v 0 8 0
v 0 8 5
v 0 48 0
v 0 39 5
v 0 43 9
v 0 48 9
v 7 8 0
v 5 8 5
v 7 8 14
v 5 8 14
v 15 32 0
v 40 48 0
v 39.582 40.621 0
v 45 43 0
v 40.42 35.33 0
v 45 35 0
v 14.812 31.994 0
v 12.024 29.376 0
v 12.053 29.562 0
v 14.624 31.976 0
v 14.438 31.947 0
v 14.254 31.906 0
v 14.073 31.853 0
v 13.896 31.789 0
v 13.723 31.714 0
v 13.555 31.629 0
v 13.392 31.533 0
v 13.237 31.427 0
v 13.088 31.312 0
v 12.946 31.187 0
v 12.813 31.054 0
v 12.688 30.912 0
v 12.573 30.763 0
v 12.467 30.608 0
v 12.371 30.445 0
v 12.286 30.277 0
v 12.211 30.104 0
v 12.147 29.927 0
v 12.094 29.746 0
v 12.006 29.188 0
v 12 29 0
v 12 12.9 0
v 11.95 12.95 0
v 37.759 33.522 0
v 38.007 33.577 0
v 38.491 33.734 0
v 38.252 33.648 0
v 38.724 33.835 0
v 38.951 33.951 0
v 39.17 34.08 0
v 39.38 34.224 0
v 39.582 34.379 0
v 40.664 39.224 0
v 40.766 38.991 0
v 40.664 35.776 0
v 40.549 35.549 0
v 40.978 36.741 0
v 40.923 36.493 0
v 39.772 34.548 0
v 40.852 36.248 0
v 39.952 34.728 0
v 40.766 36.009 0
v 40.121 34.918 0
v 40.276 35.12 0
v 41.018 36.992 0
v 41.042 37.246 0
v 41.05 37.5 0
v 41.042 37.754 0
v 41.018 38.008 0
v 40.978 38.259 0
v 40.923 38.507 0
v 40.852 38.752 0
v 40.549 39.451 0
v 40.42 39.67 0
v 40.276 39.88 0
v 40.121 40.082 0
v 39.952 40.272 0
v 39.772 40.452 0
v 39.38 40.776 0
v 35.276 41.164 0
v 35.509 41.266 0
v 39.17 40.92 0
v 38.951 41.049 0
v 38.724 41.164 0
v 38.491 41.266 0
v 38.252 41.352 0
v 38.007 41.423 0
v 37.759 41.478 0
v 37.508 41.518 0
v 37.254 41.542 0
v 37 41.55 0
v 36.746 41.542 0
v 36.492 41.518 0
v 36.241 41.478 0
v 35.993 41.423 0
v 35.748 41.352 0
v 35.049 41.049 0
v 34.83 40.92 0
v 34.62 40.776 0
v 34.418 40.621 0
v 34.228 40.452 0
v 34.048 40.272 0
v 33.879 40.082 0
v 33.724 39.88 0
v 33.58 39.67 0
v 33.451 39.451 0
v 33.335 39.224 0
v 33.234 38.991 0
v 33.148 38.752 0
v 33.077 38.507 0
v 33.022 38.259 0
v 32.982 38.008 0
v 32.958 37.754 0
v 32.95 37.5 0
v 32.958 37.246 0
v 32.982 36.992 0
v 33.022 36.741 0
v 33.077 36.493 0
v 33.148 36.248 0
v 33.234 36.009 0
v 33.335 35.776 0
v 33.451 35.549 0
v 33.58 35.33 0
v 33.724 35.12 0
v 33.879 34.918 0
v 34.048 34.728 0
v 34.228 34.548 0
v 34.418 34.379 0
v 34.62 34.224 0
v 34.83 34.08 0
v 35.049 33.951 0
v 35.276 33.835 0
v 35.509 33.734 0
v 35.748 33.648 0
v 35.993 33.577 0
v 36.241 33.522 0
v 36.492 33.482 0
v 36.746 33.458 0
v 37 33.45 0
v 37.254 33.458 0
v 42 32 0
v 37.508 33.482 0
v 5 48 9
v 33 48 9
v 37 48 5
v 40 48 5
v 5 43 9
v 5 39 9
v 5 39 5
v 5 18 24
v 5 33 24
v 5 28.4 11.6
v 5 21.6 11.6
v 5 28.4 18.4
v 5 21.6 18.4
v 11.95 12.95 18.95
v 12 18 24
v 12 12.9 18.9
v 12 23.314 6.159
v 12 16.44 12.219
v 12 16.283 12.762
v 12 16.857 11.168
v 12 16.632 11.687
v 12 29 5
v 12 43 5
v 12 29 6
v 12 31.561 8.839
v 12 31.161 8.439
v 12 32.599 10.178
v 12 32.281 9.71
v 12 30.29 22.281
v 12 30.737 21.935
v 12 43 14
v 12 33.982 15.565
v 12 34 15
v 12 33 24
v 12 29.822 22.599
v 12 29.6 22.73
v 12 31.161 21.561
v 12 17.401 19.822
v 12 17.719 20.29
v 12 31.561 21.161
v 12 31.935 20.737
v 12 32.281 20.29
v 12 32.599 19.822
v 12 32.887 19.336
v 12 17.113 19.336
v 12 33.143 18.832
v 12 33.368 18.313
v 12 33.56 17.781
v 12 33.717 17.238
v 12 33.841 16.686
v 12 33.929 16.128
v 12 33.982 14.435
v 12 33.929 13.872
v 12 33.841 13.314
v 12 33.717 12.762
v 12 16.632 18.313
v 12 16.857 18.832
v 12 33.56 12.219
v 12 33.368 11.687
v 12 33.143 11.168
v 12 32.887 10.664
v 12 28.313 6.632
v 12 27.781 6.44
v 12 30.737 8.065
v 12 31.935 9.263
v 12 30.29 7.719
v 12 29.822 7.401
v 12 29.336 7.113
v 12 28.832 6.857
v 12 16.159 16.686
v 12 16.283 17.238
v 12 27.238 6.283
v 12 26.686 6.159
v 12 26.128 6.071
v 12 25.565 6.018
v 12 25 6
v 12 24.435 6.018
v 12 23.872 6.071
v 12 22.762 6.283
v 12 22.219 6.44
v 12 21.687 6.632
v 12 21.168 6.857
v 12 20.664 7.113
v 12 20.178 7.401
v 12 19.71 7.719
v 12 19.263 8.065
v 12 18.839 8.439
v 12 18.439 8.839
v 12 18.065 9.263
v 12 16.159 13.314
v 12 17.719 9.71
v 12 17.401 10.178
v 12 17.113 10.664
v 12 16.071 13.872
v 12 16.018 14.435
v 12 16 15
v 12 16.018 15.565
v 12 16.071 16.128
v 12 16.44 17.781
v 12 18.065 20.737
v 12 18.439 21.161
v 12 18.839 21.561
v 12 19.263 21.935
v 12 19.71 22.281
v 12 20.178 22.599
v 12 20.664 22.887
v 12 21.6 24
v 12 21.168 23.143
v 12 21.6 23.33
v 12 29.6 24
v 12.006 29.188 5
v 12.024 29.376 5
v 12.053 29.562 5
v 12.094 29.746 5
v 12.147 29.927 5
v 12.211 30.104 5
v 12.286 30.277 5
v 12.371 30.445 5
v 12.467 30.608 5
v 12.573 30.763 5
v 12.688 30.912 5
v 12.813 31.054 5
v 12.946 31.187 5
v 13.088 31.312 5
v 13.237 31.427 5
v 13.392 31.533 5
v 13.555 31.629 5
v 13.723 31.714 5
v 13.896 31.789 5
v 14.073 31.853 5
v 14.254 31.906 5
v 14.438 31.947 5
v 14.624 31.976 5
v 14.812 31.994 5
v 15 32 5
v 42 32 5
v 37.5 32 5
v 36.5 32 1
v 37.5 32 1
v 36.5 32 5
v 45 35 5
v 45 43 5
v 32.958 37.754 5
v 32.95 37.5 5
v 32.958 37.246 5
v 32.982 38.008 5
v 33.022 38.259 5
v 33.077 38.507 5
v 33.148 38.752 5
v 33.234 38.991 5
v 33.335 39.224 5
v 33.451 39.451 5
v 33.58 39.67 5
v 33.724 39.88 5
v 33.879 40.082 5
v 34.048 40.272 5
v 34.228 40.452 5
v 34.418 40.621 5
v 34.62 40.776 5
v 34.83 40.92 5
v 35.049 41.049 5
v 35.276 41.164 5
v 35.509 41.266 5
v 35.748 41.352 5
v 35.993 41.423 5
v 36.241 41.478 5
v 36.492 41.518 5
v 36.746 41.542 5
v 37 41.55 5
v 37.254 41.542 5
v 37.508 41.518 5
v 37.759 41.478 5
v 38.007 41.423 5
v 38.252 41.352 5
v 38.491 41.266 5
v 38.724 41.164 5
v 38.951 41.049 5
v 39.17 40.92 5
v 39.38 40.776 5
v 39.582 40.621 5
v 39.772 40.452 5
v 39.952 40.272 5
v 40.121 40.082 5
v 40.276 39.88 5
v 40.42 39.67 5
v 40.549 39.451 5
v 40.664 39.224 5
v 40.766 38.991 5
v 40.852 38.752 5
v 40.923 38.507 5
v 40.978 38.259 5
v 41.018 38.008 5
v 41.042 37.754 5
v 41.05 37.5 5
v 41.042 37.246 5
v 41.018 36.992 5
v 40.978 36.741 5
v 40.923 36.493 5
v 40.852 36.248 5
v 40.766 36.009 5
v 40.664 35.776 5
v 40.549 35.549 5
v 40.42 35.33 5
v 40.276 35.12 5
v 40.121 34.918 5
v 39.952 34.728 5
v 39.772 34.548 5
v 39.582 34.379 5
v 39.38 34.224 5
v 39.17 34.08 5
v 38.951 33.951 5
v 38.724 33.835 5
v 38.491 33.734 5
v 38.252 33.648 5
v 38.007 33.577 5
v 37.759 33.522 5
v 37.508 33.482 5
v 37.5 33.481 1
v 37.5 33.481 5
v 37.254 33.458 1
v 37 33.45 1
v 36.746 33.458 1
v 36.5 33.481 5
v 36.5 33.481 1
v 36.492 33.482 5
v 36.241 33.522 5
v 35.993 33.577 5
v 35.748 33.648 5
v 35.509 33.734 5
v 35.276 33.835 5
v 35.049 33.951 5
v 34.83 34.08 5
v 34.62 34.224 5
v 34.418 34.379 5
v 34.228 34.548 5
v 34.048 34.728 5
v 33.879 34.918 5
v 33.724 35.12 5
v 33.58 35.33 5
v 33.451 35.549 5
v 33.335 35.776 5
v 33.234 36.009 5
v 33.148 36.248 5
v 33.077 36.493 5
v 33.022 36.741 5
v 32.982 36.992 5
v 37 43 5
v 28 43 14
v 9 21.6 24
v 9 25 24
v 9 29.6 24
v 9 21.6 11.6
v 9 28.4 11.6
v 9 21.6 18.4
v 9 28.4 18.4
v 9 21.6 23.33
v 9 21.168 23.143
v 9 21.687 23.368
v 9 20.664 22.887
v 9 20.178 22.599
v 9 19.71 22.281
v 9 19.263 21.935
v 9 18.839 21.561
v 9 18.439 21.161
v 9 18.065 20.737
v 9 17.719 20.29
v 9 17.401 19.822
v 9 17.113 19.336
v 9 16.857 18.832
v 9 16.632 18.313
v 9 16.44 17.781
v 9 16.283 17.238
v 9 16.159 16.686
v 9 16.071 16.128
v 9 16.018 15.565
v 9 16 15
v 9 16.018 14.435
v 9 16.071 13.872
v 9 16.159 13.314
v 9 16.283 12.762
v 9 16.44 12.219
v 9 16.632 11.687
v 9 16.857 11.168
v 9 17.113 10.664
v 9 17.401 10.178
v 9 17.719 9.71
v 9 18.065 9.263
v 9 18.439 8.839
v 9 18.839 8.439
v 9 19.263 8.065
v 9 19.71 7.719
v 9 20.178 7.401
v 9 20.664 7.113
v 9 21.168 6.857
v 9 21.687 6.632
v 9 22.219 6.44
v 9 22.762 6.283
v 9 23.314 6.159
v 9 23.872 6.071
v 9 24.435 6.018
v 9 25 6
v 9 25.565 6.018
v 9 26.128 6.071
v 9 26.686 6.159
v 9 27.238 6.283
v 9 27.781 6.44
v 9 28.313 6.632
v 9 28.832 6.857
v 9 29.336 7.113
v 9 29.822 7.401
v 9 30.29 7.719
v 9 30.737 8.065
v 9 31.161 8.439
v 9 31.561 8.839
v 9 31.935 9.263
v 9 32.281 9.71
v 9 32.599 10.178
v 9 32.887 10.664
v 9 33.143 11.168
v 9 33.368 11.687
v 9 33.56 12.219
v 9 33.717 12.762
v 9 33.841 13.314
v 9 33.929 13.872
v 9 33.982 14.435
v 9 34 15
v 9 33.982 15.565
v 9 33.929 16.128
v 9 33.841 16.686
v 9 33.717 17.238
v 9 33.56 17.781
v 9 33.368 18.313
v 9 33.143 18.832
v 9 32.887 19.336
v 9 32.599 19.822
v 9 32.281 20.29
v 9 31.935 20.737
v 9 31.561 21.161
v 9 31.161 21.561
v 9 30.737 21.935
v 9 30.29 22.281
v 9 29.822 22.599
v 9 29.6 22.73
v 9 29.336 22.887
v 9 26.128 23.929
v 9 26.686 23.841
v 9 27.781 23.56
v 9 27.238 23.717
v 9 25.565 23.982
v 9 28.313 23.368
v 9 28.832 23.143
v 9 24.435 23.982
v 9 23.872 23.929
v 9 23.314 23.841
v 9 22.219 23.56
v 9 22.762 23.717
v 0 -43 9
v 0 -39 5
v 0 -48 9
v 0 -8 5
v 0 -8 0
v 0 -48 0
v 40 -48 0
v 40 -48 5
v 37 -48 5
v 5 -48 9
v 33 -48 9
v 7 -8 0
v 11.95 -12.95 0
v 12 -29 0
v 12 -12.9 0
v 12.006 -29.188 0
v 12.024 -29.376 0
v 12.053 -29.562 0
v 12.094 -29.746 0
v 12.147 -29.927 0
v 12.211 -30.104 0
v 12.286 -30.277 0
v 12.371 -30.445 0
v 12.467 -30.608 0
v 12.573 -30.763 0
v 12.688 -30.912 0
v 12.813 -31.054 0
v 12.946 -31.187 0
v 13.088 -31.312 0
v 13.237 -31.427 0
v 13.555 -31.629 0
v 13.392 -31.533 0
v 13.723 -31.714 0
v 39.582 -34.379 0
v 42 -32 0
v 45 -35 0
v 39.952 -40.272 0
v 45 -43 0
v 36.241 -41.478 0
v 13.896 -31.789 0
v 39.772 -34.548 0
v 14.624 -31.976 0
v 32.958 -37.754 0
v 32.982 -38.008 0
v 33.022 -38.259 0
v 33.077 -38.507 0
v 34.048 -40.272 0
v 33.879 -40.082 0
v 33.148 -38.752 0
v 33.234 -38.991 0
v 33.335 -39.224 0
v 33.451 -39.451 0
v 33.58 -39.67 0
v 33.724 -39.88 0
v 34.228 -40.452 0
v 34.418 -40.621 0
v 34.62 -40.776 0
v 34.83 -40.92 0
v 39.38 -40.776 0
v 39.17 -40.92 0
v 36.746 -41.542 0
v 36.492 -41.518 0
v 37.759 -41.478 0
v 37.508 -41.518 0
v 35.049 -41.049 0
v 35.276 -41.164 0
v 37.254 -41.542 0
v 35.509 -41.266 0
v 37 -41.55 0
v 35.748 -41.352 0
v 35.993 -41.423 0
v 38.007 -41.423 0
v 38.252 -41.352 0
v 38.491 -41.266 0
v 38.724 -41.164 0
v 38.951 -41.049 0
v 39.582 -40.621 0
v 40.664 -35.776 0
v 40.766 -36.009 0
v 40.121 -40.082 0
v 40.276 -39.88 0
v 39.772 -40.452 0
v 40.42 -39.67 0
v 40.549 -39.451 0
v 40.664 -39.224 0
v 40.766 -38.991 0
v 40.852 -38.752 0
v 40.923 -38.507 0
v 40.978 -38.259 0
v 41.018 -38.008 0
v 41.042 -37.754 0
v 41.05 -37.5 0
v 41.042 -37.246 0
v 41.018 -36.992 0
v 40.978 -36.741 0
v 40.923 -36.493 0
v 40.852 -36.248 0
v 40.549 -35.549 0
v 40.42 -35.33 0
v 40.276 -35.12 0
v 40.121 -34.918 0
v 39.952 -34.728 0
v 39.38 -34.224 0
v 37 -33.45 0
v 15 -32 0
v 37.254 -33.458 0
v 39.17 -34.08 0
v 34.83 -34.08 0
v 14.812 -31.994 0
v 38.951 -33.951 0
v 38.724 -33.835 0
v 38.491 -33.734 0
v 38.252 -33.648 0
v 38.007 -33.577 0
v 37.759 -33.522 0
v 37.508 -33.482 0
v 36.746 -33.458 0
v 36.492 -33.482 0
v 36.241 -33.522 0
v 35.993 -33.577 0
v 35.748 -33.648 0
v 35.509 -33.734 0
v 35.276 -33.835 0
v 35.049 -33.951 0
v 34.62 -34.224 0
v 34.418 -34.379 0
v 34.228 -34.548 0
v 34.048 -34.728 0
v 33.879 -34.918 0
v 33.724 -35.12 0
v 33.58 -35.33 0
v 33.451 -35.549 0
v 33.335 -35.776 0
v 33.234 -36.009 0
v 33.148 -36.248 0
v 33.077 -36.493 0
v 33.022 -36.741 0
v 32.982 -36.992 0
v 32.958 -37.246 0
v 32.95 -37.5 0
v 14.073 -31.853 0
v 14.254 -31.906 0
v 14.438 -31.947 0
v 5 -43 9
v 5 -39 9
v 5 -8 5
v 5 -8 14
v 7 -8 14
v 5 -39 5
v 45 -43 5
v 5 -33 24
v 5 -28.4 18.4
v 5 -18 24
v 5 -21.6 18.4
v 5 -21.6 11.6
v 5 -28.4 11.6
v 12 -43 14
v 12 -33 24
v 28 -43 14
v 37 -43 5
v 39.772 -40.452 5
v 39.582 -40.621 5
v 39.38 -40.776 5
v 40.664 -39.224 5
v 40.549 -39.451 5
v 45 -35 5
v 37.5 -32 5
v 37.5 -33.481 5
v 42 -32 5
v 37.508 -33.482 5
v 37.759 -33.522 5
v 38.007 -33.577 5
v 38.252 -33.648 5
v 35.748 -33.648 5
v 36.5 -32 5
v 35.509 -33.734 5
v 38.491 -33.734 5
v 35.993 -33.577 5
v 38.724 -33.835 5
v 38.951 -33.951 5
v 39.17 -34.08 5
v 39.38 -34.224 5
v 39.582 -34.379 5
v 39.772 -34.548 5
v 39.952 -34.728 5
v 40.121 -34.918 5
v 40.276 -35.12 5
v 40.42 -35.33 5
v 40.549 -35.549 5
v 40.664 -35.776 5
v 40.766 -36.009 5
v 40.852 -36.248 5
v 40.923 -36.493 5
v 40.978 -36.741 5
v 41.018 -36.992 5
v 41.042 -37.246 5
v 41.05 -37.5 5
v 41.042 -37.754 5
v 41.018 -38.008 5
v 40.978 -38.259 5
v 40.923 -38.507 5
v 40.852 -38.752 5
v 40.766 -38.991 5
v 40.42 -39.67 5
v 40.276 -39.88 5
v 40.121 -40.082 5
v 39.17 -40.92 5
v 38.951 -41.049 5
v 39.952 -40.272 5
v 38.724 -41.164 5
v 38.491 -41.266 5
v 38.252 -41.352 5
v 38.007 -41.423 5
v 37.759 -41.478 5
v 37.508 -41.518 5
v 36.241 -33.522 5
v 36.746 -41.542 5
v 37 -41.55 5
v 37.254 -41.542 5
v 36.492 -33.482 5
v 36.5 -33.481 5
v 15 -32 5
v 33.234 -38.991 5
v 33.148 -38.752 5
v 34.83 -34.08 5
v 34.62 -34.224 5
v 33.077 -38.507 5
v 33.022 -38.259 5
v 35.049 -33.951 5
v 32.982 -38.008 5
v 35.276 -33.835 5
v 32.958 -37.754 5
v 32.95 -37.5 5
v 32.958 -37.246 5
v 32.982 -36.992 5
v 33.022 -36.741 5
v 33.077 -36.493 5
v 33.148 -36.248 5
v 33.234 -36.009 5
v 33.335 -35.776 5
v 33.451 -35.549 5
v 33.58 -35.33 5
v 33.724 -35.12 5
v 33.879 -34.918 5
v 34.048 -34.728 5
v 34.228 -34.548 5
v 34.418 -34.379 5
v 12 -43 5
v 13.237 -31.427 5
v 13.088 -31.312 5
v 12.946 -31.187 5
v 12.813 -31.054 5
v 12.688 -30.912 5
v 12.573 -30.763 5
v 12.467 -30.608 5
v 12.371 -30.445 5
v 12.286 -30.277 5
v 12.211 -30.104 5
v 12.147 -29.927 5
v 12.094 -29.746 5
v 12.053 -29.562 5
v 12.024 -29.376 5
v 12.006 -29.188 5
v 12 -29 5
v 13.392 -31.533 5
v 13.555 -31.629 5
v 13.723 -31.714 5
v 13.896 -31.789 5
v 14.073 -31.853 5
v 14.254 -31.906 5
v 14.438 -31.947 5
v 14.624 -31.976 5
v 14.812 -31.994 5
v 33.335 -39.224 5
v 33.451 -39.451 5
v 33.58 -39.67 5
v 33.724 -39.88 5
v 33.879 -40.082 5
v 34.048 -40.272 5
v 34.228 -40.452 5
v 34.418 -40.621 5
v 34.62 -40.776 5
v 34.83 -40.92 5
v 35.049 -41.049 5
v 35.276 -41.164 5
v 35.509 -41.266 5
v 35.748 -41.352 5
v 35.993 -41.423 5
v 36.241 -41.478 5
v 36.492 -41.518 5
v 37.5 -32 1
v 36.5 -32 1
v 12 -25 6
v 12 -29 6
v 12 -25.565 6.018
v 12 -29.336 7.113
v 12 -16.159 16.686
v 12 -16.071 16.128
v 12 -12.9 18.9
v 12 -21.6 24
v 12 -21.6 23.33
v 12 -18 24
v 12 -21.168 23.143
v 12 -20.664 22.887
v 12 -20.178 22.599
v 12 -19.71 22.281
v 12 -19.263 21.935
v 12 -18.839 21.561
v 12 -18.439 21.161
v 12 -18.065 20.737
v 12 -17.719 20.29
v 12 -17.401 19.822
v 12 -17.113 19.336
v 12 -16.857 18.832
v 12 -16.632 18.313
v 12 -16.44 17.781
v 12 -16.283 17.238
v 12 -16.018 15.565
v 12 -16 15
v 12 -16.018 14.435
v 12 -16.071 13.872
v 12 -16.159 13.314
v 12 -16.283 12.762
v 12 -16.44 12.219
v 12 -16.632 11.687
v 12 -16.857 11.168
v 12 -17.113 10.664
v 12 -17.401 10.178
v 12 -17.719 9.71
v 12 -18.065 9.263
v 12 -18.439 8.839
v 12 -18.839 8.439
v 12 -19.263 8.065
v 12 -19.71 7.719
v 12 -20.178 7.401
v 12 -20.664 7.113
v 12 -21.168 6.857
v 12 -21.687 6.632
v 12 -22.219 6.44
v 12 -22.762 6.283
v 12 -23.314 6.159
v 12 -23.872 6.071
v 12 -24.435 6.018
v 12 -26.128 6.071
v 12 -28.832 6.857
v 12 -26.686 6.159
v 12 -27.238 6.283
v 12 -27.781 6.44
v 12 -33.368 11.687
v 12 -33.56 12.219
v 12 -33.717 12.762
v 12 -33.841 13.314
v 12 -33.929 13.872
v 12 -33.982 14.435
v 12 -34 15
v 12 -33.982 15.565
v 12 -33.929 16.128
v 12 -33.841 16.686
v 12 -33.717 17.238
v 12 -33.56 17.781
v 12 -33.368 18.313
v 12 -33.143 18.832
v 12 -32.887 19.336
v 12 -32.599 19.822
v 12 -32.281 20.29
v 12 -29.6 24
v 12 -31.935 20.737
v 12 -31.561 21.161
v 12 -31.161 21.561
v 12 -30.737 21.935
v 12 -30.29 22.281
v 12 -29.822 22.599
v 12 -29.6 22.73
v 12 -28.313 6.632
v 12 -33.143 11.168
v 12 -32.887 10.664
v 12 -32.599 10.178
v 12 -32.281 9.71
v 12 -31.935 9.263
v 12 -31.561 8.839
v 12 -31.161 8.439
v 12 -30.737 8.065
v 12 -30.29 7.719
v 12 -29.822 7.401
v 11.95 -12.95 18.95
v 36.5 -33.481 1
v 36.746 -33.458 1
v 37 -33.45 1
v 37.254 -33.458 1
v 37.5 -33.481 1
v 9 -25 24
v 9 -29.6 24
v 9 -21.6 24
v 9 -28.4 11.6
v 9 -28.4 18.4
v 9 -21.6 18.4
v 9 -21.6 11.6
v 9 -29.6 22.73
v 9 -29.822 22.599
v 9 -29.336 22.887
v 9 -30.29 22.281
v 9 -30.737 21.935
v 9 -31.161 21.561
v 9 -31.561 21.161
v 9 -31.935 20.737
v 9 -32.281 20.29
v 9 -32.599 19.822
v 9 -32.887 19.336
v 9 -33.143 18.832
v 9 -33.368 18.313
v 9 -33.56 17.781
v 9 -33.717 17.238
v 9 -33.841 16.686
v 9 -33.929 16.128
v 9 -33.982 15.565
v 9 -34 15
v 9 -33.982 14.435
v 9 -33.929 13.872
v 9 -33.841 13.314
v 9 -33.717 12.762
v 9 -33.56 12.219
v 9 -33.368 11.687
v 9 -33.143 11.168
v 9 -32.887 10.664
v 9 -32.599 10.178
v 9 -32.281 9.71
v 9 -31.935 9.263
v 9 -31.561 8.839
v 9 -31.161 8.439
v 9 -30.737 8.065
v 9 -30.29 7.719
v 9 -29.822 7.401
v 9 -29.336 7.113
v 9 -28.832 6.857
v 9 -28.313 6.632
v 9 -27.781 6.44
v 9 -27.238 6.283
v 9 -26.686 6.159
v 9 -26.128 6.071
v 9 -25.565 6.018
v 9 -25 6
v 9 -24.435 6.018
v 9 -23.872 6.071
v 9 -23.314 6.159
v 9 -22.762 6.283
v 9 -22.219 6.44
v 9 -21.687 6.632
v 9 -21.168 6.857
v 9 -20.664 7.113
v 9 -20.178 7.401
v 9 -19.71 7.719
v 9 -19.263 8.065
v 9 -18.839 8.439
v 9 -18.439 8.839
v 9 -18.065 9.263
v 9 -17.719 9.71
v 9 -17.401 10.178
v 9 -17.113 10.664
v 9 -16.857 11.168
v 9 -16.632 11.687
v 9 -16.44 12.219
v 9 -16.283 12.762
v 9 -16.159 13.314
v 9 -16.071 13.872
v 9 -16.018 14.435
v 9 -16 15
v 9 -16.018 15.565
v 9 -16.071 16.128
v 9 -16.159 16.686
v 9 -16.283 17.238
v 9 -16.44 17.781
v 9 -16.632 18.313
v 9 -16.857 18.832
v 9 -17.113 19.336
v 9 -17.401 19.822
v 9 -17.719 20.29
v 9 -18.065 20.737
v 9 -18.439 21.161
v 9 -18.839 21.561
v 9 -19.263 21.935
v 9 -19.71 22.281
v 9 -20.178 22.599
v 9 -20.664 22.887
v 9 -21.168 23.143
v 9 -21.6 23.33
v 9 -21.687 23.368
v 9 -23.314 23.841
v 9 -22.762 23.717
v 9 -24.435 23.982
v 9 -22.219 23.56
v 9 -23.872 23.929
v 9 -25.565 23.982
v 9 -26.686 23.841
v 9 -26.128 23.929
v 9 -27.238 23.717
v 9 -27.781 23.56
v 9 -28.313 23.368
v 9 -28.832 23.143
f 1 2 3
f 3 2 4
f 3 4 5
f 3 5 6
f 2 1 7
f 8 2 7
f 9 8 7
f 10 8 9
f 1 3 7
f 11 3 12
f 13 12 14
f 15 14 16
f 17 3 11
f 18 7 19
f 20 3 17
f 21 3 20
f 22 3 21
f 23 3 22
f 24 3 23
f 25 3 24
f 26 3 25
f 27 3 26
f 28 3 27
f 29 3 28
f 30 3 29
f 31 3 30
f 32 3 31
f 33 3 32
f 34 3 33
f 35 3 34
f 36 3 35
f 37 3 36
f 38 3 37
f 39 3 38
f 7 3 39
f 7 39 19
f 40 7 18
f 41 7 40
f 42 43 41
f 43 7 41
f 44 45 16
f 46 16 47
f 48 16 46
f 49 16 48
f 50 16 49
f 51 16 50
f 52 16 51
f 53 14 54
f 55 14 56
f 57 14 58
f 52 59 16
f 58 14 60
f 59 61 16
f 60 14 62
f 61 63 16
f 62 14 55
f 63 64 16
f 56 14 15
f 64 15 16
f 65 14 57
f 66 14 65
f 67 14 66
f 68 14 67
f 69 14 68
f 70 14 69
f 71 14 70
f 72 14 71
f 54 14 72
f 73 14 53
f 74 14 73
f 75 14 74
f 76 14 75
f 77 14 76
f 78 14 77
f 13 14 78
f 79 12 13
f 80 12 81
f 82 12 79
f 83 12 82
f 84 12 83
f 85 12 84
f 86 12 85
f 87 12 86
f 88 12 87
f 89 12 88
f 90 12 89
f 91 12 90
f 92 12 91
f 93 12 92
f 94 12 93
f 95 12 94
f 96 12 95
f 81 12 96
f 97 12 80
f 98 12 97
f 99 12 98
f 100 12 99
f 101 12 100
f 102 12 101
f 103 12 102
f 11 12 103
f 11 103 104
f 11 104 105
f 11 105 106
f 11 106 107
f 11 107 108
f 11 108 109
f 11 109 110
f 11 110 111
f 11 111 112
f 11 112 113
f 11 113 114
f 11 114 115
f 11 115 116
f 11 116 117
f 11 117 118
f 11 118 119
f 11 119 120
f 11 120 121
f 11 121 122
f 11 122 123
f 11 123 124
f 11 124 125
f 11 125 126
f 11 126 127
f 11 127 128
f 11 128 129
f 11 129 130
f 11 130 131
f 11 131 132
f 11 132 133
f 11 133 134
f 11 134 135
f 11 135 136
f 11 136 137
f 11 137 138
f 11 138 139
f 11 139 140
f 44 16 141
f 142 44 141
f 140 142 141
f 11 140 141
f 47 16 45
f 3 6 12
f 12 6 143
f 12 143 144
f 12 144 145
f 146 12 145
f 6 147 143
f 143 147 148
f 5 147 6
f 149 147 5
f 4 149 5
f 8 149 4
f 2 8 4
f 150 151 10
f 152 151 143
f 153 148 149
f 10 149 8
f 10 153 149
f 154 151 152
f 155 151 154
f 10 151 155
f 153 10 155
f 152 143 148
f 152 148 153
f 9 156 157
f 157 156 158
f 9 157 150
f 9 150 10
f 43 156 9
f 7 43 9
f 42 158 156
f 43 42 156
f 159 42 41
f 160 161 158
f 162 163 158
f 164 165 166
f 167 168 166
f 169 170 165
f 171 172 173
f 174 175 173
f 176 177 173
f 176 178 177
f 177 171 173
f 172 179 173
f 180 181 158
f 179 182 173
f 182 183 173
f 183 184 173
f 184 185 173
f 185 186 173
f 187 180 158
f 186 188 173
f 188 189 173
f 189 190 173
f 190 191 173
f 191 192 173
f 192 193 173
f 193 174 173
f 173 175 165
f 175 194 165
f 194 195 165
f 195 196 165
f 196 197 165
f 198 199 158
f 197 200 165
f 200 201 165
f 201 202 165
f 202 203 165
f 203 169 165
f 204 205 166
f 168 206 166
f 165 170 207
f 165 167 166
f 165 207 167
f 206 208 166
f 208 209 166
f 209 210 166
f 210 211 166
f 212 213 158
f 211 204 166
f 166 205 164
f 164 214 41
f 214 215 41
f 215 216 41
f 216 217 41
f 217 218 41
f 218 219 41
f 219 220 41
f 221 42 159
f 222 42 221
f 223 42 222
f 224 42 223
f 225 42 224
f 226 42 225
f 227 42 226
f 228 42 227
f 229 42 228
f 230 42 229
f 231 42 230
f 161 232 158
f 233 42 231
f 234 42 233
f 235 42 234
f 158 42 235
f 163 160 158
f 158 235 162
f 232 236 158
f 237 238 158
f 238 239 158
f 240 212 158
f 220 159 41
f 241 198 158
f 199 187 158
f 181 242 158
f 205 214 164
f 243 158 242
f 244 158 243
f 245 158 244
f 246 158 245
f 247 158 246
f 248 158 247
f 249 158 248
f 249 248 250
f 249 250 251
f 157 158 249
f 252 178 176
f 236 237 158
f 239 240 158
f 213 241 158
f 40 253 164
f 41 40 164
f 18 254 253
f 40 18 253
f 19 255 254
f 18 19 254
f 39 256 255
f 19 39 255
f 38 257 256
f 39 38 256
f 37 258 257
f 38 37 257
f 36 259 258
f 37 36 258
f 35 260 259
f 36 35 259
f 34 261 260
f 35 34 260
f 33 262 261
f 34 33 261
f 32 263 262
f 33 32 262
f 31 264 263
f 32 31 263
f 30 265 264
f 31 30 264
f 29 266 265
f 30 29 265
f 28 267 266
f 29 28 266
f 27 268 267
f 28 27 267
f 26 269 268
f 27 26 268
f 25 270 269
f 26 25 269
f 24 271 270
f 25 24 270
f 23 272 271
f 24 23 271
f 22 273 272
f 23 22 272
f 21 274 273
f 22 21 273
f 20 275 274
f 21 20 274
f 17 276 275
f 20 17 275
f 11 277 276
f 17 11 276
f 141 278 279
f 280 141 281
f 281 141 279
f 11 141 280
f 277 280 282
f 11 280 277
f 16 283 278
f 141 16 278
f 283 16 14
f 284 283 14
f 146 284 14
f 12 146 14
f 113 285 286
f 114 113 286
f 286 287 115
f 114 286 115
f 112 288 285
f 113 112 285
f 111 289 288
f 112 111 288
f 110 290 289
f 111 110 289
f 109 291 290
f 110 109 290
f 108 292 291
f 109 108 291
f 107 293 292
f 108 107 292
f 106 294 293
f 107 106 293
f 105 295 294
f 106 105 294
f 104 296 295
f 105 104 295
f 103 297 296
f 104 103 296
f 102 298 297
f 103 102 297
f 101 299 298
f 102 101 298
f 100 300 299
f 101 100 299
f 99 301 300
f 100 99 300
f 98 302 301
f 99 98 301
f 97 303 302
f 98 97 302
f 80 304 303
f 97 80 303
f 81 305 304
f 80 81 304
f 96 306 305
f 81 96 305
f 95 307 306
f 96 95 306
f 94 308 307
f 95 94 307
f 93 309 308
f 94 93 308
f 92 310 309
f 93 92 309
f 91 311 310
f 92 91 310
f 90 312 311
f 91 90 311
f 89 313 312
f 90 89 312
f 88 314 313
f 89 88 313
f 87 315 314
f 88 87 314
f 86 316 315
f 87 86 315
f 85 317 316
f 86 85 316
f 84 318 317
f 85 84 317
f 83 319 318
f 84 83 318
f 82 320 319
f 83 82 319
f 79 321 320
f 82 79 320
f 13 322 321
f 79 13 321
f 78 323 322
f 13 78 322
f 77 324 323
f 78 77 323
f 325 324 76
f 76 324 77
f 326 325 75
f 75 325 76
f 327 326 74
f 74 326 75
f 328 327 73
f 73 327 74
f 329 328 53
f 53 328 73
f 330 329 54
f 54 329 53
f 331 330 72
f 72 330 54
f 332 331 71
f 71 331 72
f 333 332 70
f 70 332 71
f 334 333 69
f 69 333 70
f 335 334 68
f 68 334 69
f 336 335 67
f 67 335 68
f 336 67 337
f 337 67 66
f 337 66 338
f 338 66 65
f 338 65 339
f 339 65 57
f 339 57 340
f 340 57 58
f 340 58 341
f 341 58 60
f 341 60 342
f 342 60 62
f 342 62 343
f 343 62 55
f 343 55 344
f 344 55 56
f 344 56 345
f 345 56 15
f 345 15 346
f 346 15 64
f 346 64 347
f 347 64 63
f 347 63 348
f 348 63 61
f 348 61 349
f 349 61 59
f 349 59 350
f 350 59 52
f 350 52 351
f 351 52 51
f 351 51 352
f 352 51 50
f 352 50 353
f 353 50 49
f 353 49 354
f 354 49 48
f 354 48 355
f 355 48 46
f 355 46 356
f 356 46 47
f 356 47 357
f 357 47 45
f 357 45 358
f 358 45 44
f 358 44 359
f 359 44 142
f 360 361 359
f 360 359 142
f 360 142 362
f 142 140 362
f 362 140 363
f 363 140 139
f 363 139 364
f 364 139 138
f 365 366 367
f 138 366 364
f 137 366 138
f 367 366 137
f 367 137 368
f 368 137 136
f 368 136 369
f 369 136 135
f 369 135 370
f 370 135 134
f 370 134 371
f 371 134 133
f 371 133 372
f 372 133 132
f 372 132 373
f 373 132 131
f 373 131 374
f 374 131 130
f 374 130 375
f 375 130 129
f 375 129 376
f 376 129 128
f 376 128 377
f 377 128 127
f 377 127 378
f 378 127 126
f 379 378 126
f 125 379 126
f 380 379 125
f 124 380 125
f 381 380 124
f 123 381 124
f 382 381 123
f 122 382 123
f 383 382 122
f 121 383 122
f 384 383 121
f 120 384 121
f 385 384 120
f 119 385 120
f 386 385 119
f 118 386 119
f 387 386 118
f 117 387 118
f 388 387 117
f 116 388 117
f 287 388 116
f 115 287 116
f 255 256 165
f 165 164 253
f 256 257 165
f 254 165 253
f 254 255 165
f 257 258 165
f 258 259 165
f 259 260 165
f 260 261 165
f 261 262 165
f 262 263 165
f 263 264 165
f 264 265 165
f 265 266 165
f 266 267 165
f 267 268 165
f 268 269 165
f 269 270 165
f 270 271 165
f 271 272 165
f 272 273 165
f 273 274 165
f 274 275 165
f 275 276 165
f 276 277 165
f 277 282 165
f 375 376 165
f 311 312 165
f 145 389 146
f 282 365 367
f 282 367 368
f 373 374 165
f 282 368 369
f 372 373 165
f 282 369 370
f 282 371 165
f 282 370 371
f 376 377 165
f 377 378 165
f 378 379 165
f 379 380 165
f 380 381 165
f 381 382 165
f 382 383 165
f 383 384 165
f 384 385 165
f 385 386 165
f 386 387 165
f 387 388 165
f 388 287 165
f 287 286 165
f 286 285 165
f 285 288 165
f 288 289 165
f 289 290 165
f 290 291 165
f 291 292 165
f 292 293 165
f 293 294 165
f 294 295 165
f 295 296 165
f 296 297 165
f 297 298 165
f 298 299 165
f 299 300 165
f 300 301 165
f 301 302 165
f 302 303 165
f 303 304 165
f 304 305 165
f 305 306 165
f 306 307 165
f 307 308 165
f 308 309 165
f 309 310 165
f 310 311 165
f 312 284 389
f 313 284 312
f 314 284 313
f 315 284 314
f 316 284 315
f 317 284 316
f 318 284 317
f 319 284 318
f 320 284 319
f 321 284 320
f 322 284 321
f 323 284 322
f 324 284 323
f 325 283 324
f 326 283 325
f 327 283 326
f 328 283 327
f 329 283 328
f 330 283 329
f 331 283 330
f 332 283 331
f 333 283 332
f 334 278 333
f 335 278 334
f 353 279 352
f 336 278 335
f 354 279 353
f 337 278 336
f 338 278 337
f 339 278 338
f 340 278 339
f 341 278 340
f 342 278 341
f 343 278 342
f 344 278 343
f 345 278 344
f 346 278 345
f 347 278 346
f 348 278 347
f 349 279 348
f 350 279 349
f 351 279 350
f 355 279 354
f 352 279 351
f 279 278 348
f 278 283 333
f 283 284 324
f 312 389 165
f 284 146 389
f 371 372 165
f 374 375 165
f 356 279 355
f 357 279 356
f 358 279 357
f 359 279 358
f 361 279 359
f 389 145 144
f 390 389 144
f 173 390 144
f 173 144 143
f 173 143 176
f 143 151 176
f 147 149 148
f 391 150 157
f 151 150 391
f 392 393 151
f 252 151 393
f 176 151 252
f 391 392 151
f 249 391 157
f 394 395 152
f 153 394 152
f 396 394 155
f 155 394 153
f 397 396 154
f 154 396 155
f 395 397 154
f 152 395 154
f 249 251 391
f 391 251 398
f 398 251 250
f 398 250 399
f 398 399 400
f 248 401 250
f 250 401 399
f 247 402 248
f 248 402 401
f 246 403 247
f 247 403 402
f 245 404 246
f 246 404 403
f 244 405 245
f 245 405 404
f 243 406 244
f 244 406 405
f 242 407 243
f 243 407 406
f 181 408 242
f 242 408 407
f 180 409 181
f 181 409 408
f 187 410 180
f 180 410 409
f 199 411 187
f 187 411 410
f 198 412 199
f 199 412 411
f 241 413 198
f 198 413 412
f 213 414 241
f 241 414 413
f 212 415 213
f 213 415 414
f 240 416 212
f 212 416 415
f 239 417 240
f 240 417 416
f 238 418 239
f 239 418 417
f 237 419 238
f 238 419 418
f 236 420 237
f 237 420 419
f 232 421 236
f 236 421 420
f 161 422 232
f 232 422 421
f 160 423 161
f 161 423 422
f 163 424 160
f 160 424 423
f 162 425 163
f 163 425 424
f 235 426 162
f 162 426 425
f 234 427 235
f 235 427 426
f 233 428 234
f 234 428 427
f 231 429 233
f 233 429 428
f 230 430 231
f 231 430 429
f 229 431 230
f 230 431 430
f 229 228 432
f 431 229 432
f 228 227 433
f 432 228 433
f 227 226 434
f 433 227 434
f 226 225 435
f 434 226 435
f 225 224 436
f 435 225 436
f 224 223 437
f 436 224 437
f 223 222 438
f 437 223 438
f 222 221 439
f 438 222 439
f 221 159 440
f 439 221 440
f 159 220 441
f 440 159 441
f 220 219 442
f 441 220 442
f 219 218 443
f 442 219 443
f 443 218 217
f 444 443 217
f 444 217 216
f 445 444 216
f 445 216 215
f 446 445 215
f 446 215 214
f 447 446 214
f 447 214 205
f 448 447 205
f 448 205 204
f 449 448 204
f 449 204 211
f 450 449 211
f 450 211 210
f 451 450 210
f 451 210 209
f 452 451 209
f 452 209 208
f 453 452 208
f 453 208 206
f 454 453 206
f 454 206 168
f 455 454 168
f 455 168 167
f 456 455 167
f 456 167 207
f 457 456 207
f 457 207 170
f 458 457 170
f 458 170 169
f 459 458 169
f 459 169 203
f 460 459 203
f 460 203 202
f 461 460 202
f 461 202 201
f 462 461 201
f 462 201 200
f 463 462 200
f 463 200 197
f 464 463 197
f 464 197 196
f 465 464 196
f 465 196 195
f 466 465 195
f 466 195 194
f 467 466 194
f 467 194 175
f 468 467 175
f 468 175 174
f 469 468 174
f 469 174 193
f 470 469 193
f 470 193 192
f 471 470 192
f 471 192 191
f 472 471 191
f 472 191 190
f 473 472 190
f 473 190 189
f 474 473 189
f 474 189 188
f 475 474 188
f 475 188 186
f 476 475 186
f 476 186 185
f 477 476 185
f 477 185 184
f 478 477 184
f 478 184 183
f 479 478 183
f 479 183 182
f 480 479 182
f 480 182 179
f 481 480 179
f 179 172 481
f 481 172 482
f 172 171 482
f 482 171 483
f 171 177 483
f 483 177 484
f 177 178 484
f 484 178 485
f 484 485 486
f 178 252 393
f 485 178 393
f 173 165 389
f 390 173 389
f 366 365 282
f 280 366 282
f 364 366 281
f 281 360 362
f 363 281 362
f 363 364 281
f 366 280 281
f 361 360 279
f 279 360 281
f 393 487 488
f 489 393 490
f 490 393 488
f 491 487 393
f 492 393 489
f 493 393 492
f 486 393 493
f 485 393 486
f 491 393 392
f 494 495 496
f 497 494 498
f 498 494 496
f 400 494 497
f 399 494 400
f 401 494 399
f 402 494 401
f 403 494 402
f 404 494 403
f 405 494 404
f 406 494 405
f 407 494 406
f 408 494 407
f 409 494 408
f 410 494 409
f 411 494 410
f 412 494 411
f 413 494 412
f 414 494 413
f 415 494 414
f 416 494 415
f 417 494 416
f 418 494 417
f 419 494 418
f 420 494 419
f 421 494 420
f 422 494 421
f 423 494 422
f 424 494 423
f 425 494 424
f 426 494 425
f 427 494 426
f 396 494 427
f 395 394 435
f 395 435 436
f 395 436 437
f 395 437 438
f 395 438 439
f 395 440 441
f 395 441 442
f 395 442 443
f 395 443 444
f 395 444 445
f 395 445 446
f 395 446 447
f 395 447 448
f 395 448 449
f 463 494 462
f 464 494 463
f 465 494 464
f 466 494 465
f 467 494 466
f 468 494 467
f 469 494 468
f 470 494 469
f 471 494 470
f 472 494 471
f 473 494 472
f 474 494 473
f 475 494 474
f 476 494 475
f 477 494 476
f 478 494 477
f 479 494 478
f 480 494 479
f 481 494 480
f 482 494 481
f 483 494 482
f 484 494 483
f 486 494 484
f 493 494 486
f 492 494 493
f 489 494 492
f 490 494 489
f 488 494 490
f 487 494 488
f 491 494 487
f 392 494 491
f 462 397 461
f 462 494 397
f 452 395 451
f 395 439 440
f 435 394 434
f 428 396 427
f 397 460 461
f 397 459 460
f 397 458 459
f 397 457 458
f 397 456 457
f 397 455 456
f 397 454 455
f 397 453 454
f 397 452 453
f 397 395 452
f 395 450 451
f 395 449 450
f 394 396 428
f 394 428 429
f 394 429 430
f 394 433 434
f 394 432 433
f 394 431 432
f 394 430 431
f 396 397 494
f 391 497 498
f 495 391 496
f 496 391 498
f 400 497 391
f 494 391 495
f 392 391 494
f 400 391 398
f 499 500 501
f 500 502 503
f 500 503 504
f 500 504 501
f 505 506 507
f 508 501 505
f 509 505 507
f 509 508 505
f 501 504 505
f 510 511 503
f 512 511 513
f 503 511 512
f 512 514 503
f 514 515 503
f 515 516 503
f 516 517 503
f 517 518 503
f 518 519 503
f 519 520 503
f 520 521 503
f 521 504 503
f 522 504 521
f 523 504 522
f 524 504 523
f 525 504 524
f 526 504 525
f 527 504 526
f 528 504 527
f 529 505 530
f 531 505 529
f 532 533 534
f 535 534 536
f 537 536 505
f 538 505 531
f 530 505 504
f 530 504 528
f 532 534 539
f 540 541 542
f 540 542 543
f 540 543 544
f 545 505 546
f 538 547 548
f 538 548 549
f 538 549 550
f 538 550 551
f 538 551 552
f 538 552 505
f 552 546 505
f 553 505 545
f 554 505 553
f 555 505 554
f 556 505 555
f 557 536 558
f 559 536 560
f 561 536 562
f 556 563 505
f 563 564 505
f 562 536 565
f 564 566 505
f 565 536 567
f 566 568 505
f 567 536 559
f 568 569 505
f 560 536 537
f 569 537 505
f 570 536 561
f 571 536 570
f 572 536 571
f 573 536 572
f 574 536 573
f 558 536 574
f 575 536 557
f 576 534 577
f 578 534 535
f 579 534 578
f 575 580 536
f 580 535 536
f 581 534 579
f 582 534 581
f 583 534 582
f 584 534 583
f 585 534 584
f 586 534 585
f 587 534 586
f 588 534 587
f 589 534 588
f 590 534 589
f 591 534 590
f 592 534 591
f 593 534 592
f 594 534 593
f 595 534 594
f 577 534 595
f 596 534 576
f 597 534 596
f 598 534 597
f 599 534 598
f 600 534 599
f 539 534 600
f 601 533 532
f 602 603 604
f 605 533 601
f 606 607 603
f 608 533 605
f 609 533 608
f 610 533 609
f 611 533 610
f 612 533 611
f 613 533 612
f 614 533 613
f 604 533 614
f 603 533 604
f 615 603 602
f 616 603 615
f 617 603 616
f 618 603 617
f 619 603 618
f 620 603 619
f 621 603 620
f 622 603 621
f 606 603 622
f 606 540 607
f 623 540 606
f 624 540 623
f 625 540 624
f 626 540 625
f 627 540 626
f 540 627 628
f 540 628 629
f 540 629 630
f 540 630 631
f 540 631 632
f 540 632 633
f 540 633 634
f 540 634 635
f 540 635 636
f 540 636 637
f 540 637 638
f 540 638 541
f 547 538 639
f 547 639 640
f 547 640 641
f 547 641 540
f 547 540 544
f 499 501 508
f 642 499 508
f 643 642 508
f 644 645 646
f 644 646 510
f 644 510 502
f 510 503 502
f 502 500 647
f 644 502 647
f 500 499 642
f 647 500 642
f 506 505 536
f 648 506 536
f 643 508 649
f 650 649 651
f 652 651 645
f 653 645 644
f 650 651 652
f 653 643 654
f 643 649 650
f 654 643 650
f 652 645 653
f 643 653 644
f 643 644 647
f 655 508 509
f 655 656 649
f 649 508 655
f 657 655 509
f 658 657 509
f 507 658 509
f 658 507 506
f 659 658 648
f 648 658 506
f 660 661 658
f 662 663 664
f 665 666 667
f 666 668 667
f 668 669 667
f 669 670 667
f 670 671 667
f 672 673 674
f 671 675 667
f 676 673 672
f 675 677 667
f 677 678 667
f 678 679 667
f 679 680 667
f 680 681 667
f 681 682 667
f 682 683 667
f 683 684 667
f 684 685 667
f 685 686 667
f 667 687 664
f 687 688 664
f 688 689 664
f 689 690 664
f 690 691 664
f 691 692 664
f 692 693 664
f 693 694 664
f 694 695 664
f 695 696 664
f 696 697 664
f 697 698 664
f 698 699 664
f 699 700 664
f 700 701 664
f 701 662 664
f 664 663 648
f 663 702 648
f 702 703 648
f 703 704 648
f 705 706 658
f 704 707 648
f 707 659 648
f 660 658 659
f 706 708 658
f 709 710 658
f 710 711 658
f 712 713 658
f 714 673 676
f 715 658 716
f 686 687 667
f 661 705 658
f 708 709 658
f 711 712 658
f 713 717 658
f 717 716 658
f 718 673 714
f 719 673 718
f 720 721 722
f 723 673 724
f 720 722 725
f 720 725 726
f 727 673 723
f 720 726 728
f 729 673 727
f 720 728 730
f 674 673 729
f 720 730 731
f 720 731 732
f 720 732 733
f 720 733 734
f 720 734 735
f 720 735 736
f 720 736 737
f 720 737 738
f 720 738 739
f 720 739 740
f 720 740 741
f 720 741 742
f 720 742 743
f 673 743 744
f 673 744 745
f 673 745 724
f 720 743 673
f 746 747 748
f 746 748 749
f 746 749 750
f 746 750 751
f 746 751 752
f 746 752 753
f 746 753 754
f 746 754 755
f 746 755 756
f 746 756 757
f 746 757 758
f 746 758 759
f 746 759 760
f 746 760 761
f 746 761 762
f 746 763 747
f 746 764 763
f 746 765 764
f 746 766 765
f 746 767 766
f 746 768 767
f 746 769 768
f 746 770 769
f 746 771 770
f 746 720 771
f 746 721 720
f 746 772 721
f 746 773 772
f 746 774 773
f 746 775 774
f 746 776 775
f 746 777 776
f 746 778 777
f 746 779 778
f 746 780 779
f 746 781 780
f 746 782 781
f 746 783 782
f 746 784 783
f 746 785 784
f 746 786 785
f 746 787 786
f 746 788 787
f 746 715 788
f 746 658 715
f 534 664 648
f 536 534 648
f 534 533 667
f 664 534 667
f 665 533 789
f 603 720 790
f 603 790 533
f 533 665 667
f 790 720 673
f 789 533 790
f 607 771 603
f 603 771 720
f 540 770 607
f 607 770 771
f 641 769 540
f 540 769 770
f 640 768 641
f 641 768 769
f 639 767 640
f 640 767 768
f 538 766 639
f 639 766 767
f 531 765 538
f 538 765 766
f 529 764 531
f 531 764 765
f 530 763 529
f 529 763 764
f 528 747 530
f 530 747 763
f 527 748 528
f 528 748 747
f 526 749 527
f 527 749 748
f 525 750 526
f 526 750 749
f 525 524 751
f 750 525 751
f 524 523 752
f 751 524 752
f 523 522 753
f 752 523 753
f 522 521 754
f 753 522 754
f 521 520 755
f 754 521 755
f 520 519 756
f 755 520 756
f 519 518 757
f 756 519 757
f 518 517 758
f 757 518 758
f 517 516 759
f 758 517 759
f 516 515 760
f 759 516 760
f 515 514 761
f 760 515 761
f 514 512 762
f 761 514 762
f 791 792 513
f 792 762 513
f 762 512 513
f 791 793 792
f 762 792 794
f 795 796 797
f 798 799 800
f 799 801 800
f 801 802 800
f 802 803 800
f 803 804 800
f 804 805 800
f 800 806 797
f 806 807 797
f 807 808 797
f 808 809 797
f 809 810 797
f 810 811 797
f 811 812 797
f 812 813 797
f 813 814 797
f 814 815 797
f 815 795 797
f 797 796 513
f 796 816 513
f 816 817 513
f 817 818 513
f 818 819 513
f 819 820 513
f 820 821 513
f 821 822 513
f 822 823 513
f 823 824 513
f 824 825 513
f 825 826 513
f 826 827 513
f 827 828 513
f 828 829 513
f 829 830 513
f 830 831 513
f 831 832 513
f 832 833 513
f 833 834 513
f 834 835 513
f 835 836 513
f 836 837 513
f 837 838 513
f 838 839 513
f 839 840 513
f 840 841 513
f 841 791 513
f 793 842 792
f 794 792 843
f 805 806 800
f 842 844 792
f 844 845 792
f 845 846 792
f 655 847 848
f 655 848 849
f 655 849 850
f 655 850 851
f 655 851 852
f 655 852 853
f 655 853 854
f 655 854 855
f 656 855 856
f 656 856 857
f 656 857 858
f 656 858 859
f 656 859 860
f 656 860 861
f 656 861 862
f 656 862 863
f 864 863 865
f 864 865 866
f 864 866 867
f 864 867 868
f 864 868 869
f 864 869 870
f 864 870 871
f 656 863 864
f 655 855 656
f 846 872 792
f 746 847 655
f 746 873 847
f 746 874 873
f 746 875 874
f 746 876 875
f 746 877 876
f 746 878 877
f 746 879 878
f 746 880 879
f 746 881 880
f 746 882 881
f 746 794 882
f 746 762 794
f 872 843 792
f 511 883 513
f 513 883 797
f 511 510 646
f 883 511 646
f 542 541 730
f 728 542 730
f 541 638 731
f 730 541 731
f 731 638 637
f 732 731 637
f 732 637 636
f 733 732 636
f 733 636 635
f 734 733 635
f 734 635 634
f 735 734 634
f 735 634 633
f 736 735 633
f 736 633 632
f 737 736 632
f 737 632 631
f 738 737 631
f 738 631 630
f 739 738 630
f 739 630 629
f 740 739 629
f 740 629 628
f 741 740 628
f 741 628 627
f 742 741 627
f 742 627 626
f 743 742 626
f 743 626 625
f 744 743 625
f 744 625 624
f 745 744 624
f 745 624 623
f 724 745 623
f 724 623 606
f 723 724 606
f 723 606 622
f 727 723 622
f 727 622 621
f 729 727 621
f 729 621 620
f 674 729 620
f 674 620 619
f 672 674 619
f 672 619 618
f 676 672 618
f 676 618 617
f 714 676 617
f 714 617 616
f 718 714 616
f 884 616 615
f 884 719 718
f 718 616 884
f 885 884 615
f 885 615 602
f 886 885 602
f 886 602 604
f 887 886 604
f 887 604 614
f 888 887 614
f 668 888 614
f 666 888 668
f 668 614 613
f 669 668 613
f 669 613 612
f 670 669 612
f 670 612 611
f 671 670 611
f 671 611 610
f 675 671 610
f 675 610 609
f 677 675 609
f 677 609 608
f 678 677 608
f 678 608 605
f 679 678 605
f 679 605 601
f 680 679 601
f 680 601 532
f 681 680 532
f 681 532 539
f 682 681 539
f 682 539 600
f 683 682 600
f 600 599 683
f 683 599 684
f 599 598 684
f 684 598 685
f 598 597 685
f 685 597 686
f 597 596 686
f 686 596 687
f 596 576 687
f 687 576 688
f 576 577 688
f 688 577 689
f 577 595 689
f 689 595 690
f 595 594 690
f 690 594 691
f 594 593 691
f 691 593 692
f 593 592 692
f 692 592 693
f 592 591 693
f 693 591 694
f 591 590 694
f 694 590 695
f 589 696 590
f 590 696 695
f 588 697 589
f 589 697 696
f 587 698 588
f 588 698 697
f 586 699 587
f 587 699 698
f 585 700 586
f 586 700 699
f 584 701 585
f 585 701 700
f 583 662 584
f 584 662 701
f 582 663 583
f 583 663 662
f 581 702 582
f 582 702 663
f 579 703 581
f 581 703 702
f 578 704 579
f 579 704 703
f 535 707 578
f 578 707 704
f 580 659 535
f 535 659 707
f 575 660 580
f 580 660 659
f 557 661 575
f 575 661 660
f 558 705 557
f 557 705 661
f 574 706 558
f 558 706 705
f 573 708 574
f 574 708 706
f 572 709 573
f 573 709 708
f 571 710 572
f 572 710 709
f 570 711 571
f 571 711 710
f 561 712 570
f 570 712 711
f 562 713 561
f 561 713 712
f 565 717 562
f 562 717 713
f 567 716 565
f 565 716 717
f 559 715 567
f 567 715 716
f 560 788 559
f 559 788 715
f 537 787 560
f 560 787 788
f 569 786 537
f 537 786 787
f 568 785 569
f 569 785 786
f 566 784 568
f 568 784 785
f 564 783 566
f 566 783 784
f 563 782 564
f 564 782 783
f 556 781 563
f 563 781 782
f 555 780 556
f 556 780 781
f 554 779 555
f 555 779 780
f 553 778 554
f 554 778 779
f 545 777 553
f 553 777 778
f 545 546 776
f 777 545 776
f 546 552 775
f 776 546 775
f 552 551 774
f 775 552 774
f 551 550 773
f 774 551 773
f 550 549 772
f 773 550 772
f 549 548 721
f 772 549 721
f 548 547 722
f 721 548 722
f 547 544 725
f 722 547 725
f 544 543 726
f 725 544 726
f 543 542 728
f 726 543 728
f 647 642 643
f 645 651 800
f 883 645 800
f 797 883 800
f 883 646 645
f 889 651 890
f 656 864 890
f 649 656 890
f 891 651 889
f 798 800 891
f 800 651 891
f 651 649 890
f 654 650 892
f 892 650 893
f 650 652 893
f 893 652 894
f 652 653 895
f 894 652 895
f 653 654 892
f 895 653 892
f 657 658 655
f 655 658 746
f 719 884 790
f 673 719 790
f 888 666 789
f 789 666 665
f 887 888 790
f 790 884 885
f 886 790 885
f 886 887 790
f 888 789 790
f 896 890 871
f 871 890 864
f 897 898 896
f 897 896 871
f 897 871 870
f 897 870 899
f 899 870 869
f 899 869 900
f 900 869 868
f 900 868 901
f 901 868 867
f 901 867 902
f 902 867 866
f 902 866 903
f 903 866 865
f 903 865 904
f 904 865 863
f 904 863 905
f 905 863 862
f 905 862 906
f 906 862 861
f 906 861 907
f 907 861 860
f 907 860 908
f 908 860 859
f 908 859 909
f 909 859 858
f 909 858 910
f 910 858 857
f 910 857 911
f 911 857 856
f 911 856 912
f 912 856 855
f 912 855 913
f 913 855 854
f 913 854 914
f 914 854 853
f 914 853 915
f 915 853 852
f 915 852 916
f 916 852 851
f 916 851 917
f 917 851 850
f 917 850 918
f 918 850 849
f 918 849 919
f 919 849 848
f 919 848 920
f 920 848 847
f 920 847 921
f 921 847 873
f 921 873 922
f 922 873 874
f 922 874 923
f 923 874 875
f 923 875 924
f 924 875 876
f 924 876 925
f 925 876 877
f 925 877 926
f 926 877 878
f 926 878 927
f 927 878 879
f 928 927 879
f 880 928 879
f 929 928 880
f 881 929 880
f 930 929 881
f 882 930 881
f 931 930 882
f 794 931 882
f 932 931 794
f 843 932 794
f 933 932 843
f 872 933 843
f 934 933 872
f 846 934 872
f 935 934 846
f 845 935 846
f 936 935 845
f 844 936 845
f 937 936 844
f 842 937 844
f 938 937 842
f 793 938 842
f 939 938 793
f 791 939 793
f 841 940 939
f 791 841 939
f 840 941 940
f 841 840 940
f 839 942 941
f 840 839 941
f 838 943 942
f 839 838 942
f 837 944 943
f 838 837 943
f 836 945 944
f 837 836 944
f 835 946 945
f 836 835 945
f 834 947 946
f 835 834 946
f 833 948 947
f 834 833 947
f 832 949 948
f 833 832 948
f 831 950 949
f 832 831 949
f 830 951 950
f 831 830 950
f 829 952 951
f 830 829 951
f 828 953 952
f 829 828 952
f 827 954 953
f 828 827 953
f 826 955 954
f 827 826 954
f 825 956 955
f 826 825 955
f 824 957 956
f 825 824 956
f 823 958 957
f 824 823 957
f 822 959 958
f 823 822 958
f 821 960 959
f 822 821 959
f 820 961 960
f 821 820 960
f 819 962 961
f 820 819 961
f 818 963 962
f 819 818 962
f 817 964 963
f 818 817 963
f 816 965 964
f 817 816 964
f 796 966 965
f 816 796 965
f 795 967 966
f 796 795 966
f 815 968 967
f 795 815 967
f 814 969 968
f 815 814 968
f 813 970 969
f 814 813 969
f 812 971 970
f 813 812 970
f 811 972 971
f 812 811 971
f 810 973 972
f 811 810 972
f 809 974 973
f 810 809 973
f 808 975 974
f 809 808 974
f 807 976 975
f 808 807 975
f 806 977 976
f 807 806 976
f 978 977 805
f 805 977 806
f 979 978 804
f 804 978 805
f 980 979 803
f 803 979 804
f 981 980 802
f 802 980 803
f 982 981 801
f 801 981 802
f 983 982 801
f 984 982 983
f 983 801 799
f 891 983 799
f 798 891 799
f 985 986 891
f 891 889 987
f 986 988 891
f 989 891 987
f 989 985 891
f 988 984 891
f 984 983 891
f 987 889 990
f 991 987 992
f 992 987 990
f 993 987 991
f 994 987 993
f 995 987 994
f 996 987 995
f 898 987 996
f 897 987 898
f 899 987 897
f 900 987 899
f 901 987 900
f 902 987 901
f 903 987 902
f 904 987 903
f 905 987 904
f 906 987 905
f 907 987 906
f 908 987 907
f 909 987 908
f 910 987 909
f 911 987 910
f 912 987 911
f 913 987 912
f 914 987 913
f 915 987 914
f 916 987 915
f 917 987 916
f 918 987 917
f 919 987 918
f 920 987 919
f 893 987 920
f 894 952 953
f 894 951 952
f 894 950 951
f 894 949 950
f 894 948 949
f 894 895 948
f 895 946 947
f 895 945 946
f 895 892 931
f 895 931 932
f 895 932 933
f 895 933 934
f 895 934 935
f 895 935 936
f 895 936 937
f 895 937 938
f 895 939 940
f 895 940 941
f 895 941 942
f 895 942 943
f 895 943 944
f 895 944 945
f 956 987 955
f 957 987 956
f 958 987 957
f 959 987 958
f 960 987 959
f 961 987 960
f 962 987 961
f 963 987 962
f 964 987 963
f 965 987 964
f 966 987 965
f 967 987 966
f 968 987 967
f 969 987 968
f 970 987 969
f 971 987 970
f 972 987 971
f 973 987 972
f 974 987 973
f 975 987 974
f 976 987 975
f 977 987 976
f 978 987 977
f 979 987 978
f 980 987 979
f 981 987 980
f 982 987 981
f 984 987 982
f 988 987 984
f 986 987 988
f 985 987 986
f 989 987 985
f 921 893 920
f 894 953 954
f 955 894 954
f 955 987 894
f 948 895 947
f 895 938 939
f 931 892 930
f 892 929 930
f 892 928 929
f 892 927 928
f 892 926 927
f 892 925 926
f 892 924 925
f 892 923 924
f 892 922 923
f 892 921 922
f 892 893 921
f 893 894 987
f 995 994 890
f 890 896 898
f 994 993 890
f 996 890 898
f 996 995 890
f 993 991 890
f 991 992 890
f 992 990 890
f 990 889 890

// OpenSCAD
// Created from Code_Ztop.stl
// https://github.com/Mecan0/Code
// By J.Rodigo (www.jra.so)
// Licence Creative commons atribution & share alike.

module pieza(){
	difference () {
		union() {
			cube([12, 40, 24]);

			translate([0, 21, 0])
			cube([45, 19, 5]);

			translate([0, 35, 0])
			cube([37, 5, 24]);
		}	
		union() {
			translate([37, 29.5, -1])
			cylinder(h = 7, r = 4.05, $fn=100);

			translate([36.5, 23.5, 1])
			cube([1, 3, 5]);

			translate([15, 21, -1])
			cylinder(h = 7, r = 3, $fn=100);

			translate([15, 20, -1])
			cube([31, 4, 7]);

			translate([9, 17, 15])
			union() {
				cube([20, 6.8, 6.8], center = true);
				rotate( 90, [0, 1, 0])
				cylinder(h = 4, r = 9, $fn=100);
			}

			translate([9, 13.6, 22])
			cube([4, 8, 3]);

			translate([-1, -1, 5])
			cube([6, 32, 20]);

			translate([-1, 30, 9])
			cube([6, 11, 16]);

			// Chaflanes
			translate([4, 0, 14])
			rotate( 90 ,[0, 1, 0])
			rotate( 135 ,[0, 0, 1])
			cube([15, 8, 9]);

			translate([-1, 31, 5])
			rotate( 90 ,[0, 1, 0])
			rotate( 135 ,[0, 0, 1])
			cube([6, 6, 6]);

			translate([0, 40, 9])
			rotate( 90 ,[0, 1, 0])
			rotate( 135 ,[0, 0, 1])
			cube([12, 22, 34]);

			translate([37, 41, 5])
			rotate( 90 ,[1, 0, 0])
			rotate( 45 ,[0, 0, 1])
			cube([15, 22, 7]);

			translate([7, 0, -1])
			rotate( -45 ,[0, 0, 1])
			cube([4, 7, 21]);

			translate([42, 24, -1])
			rotate( -45 ,[0, 0, 1])
			cube([8, 12, 7]);

			translate([45, 35, -1])
			rotate( 45 ,[0, 0, 1])
			cube([6, 8, 7]);
		}	
 
	}
}

// Pieza normal
translate([0, 8, 0])
pieza();

// Pieza espejo  
translate([0, -8, 0])
mirror([ 0, 1, 0 ]) 
pieza();   
